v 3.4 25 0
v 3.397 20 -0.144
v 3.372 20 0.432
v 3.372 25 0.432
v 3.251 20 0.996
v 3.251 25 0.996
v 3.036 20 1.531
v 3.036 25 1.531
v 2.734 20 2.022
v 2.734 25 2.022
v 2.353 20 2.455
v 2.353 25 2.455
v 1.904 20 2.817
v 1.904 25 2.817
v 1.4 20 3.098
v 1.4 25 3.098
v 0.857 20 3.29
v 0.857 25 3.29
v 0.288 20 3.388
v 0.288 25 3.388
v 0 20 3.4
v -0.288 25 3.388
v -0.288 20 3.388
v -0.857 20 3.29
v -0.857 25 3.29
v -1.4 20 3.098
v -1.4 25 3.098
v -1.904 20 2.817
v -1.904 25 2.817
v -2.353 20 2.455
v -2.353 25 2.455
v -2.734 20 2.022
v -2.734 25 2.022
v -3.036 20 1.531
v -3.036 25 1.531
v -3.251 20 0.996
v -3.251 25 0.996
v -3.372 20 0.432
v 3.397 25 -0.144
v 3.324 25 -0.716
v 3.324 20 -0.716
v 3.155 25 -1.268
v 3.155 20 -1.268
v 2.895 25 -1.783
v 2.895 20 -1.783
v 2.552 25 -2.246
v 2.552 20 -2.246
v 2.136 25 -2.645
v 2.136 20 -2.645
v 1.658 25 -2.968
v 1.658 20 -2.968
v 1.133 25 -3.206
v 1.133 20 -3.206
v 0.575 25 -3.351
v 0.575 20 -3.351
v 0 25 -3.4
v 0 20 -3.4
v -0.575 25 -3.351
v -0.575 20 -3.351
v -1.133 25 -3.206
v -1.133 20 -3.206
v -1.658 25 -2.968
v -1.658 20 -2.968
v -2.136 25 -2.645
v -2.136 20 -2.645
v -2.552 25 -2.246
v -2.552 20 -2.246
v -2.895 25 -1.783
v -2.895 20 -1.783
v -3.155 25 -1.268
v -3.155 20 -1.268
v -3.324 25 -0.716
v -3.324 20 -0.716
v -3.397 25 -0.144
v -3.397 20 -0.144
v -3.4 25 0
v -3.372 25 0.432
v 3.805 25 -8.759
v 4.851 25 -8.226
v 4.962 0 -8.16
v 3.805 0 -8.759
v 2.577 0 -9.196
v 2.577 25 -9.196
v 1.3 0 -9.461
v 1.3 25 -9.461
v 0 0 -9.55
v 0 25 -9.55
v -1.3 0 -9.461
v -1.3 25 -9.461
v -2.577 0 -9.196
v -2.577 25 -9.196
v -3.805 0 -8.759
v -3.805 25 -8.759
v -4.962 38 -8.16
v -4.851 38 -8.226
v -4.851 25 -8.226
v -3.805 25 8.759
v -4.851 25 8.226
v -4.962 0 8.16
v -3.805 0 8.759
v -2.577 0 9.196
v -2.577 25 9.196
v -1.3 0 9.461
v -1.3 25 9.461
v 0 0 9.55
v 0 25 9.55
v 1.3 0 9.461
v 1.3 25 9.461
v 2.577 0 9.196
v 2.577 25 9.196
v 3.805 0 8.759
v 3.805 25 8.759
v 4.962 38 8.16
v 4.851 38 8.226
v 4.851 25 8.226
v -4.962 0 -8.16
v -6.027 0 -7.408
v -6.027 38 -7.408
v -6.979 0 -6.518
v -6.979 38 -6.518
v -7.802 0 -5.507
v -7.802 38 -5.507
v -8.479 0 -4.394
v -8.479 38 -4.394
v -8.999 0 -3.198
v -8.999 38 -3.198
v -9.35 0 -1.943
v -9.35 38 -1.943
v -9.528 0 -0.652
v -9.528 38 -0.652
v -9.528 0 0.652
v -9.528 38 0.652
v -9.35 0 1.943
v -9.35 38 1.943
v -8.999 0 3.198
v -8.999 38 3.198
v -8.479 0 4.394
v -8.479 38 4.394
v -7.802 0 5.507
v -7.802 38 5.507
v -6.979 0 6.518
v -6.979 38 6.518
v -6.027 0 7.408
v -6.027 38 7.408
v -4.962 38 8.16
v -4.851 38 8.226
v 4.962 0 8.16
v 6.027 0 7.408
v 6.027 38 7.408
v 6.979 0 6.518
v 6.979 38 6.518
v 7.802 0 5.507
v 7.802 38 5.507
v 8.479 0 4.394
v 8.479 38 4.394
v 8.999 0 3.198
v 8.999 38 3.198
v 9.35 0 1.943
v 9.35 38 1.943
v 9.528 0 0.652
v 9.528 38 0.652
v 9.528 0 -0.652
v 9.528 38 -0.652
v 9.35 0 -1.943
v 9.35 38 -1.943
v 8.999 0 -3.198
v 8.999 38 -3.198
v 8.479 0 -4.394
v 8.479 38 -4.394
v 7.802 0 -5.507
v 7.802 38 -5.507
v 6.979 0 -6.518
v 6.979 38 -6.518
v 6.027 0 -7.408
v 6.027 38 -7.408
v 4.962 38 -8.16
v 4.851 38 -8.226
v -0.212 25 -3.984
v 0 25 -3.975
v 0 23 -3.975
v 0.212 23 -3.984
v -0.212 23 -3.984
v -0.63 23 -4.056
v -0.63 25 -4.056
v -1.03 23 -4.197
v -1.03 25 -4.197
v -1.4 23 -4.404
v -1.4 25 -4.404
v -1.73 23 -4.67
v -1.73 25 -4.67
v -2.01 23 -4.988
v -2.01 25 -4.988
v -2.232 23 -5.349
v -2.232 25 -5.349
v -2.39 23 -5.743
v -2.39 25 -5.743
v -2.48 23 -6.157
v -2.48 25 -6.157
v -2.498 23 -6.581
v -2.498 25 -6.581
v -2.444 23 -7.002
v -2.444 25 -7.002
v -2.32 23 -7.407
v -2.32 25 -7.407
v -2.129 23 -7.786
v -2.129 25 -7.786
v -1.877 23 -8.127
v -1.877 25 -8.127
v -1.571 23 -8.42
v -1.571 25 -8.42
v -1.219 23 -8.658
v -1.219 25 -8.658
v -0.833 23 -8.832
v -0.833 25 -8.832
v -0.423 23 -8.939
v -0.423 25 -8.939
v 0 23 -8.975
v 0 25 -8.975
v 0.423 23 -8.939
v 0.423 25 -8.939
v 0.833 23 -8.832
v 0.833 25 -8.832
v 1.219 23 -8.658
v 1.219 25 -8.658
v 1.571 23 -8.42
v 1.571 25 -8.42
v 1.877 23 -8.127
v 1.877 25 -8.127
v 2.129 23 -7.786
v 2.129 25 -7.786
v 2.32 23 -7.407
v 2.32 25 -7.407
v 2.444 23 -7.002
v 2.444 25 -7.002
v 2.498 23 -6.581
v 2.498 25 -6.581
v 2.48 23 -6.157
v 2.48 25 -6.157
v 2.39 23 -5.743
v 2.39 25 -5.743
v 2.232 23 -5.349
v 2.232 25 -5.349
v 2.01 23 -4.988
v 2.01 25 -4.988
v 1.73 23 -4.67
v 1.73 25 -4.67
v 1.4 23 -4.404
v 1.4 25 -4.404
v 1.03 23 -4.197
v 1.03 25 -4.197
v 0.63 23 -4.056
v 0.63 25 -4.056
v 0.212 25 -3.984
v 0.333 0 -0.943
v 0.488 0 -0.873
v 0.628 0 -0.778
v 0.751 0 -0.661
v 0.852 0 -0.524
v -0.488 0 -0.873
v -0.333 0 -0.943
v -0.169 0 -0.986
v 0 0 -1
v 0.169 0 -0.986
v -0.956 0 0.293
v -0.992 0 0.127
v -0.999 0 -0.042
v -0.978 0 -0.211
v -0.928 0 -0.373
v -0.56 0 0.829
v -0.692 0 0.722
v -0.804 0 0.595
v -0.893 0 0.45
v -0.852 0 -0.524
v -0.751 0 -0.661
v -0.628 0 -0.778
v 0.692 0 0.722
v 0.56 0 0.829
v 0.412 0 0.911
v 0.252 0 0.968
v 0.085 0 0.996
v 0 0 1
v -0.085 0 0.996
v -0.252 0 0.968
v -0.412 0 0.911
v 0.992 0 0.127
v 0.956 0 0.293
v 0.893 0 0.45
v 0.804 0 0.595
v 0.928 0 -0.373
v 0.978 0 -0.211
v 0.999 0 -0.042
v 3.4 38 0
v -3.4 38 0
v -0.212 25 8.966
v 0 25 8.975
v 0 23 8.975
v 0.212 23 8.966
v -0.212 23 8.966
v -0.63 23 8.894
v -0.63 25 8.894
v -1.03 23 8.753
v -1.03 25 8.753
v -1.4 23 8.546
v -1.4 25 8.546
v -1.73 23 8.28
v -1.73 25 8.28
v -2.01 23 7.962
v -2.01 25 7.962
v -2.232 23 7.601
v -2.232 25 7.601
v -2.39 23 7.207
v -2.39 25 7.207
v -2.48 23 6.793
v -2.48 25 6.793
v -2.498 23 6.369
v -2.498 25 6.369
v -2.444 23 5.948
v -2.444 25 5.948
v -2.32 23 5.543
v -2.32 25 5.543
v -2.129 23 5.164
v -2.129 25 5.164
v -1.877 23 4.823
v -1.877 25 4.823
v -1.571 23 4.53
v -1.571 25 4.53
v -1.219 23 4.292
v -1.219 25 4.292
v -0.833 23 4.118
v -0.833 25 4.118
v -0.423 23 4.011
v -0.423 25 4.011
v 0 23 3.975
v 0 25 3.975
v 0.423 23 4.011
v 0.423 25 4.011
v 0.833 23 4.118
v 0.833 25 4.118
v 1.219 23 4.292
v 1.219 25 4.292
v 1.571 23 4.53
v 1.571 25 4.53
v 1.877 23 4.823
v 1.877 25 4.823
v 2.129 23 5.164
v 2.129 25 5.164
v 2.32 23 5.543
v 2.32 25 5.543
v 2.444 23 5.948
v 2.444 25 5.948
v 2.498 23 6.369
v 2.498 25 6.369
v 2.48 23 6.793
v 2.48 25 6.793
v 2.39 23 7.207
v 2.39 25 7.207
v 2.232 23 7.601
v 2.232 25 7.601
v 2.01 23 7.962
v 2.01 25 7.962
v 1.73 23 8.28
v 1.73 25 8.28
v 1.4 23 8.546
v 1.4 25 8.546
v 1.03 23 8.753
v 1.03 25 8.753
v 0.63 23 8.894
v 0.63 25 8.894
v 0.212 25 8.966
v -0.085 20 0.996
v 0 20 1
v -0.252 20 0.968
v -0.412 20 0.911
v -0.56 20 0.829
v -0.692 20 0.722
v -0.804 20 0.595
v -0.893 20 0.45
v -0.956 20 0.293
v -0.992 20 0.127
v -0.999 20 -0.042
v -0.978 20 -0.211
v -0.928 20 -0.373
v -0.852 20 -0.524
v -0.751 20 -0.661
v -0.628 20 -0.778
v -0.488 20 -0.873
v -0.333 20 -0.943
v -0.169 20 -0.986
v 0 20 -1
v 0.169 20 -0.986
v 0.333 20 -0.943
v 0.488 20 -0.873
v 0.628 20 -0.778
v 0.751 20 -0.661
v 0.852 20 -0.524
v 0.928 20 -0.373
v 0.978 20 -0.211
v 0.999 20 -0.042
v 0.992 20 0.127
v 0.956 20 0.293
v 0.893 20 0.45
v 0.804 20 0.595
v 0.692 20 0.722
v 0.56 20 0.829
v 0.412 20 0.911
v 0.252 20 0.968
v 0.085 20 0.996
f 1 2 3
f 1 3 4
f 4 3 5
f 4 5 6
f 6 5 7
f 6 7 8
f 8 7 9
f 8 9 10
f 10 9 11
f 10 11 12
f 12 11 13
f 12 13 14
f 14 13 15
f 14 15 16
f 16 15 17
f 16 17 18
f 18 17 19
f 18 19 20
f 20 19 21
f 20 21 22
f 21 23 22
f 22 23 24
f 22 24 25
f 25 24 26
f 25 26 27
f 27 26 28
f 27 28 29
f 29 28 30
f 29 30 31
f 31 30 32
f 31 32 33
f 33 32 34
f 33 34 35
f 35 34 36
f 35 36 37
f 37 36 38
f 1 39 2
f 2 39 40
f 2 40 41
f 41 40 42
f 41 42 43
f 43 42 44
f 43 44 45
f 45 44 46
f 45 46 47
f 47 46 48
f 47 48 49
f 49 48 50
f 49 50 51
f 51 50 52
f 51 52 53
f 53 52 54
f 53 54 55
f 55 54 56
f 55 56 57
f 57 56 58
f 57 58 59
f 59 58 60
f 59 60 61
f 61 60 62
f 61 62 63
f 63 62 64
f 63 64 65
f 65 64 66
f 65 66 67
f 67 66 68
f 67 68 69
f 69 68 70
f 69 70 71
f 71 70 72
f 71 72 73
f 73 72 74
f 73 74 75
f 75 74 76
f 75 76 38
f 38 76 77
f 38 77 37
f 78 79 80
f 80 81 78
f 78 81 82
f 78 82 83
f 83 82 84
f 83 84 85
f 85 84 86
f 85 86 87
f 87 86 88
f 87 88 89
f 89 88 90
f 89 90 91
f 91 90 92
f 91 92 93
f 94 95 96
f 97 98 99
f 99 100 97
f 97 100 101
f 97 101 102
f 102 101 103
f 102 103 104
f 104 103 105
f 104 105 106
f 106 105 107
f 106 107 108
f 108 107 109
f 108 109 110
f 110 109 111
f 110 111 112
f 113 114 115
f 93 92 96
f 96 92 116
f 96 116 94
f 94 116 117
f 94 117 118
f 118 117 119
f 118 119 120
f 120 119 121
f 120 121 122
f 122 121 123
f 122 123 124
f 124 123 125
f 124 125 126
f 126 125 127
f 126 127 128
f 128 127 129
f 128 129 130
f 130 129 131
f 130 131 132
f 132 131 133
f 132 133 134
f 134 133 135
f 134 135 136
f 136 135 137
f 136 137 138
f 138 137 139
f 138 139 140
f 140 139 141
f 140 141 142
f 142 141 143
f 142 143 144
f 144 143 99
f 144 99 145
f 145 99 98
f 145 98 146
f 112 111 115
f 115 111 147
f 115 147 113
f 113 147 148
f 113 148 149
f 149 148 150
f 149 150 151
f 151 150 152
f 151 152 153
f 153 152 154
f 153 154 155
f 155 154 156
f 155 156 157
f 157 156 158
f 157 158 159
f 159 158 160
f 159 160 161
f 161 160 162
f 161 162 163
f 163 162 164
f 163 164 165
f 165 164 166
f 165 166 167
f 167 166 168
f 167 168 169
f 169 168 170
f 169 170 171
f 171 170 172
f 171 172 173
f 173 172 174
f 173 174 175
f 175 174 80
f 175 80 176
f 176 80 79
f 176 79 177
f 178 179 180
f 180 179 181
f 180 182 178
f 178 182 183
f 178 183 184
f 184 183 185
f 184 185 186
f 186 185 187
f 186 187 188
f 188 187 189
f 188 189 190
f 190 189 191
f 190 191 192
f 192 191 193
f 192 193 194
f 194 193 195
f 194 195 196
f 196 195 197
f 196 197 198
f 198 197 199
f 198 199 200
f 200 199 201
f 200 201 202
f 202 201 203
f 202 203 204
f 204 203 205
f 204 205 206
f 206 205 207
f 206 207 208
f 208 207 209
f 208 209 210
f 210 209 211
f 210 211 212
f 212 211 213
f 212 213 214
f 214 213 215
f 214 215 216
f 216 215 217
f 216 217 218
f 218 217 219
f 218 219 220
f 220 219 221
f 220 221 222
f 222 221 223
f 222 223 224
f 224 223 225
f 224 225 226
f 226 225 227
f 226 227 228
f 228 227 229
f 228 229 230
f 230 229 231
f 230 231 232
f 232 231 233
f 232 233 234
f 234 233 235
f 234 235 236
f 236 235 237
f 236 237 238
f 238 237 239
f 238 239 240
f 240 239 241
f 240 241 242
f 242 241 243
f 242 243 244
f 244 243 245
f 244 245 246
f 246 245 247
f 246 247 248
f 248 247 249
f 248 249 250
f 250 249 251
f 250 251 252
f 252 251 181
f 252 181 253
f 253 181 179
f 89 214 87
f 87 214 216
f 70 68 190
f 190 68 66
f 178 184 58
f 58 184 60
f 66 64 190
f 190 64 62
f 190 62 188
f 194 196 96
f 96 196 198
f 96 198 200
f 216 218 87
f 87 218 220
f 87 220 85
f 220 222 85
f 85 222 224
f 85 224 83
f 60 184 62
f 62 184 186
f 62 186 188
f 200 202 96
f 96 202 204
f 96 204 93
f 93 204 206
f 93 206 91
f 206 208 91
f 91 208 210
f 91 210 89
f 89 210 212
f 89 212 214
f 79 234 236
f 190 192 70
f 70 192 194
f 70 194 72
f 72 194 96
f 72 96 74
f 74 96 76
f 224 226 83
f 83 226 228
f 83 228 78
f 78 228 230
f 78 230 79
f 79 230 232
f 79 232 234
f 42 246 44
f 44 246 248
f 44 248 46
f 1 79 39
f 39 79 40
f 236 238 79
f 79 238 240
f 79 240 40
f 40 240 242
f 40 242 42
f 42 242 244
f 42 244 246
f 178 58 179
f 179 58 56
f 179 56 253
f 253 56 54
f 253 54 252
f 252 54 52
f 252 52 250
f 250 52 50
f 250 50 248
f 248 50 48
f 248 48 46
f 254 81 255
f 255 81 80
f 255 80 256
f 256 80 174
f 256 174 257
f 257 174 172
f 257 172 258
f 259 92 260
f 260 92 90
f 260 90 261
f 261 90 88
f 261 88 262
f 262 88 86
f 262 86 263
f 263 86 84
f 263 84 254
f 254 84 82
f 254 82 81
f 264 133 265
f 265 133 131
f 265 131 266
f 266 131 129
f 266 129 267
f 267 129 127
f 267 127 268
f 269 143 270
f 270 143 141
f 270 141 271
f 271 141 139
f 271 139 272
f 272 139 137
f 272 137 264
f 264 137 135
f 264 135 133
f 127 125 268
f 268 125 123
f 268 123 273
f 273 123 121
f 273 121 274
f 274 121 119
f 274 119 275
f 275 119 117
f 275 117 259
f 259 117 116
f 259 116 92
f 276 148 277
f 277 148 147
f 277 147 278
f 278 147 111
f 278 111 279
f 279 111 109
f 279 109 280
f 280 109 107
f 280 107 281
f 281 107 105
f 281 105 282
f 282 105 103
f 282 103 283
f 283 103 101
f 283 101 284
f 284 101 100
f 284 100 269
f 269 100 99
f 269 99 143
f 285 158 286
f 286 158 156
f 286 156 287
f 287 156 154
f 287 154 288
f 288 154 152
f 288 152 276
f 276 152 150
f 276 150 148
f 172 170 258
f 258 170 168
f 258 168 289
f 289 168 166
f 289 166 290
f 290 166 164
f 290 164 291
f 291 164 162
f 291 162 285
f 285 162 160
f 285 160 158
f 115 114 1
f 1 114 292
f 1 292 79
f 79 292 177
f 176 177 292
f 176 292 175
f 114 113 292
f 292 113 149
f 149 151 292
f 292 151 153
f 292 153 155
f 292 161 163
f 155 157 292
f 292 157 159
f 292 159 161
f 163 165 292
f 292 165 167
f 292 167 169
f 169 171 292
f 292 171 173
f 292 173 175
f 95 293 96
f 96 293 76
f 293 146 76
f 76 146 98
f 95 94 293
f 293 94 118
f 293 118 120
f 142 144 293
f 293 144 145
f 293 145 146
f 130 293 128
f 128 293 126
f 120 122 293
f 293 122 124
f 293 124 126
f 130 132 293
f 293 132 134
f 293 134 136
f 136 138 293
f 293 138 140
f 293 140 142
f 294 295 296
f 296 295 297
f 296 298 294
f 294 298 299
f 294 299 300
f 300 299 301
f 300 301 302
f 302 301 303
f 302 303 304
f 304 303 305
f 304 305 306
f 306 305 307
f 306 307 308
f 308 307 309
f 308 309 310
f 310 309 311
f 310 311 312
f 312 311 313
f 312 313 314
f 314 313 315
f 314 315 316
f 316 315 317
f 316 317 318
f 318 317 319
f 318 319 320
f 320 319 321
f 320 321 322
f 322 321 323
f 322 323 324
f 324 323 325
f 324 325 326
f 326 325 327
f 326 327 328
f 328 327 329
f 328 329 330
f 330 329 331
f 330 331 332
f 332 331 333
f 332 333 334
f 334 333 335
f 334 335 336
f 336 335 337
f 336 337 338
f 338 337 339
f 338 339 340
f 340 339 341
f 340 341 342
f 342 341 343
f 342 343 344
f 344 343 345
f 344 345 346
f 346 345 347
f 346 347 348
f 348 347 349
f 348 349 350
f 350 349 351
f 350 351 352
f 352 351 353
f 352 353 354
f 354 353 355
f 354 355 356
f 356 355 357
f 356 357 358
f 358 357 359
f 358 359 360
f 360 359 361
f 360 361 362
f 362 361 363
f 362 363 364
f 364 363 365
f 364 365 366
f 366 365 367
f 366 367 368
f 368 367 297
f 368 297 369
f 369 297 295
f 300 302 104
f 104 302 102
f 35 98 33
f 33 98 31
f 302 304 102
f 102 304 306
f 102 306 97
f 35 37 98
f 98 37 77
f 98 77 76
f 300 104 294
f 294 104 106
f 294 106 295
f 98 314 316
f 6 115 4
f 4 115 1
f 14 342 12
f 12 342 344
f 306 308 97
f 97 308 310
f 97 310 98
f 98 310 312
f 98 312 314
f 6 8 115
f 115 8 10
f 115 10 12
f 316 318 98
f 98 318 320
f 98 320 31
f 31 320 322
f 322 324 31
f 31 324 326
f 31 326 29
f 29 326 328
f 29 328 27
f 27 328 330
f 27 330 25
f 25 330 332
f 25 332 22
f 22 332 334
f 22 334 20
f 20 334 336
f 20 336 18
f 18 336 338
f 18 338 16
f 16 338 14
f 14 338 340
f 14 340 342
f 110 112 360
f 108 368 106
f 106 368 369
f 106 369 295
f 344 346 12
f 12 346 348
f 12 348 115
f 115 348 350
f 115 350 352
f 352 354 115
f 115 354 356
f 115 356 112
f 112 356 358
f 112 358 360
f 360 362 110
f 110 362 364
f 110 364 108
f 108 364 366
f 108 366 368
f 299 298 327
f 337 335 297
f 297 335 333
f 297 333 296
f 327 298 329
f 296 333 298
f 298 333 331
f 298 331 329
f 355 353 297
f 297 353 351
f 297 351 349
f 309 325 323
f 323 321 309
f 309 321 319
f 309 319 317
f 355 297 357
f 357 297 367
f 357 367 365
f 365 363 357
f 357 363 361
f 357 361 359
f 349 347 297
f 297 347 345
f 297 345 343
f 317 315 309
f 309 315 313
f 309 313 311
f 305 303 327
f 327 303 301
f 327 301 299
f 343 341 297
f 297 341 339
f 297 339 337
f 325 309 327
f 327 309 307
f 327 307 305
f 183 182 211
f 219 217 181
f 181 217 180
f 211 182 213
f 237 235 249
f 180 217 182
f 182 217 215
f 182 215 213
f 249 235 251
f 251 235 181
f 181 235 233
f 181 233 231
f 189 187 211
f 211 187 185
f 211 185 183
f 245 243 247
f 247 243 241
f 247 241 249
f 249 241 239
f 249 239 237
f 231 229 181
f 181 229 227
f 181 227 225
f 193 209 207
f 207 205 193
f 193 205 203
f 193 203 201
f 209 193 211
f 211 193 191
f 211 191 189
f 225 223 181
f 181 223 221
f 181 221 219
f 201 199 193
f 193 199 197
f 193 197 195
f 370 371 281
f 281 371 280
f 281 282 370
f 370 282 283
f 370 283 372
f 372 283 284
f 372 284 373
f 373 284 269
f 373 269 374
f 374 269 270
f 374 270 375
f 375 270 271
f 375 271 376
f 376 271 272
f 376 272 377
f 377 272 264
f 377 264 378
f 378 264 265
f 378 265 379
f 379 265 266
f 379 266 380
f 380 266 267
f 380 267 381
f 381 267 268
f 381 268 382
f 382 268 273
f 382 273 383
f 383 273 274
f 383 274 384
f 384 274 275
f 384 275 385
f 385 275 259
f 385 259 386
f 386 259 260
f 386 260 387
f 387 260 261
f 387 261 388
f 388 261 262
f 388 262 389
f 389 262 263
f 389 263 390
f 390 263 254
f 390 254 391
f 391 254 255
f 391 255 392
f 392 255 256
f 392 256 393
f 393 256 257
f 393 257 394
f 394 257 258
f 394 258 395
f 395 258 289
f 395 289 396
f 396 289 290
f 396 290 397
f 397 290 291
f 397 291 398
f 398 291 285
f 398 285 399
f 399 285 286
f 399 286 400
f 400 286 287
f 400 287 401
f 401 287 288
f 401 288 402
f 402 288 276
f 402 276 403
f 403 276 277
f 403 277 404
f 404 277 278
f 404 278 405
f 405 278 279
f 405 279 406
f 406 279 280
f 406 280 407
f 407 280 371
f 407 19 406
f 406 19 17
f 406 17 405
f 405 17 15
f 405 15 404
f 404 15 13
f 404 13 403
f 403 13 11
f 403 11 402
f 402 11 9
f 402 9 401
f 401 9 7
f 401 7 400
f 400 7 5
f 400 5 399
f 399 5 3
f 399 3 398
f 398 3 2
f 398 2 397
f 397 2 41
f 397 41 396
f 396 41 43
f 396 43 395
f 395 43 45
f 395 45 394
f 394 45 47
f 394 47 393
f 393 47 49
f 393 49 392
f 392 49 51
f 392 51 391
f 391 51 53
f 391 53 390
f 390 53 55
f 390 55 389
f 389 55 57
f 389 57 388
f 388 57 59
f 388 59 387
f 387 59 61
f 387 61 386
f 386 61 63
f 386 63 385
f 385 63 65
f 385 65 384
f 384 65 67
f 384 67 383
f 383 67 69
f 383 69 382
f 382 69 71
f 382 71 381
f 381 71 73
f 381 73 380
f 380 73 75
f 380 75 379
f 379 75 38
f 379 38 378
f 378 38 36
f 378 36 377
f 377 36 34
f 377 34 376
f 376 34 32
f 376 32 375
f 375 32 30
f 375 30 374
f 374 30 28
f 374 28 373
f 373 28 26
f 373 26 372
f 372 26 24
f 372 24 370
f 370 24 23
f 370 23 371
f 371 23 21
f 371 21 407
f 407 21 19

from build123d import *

# Parameters (mm, degrees)
SKETCH1_R             = 2.5
BOSS_EXTRUDE1_DEPTH   = 25
BOSS_EXTRUDE1_2_DEPTH = 25
BOSS_EXTRUDE2_DEPTH   = 38
SKETCH1_4_R           = 2.5
BOSS_EXTRUDE3_DEPTH   = 23
SKETCH1_5_R           = 3.4
SKETCH1_5_R_2         = 1
BOSS_EXTRUDE4_DEPTH   = 20


with BuildPart() as part:
    # Sketch1 → Boss-Extrude1 (new body)
    with BuildSketch(Plane(origin=(0, 0, 0), x_dir=(1, 0, 0), z_dir=(0, 1, 0))):
        with BuildLine():
            ThreePointArc((-3.4, 0), (0, 3.4), (3.4, 0))
            Line((3.4, 0), (4.85054735, 8.226462813))
            ThreePointArc((4.85054735, 8.226462813), (0, 9.55), (-4.85054735, 8.226462813))
            Line((-4.85054735, 8.226462813), (-3.4, 0))
        make_face()
        with Locations(Location((0, 6.475, 0), (0, 0, 270))):
            Circle(SKETCH1_R, mode=Mode.SUBTRACT)
    extrude(amount=BOSS_EXTRUDE1_DEPTH)



with BuildPart() as body_2:
    # Sketch1 → Boss-Extrude1 2 (new body)
    with BuildSketch(Plane(origin=(0, 0, 0), x_dir=(1, 0, 0), z_dir=(0, 1, 0))):
        with BuildLine():
            Line((4.85054735, -8.226462813), (3.4, 0))
            ThreePointArc((3.4, 0), (0, -3.4), (-3.4, 0))
            Line((-3.4, 0), (-4.85054735, -8.226462813))
            ThreePointArc((-4.85054735, -8.226462813), (0, -9.55), (4.85054735, -8.226462813))
        make_face()
        with Locations(Location((0, -6.475, 0), (0, 0, 270))):
            Circle(SKETCH1_R, mode=Mode.SUBTRACT)
    extrude(amount=BOSS_EXTRUDE1_2_DEPTH)


with BuildPart() as part_1:
    add(part.part)

    add(body_2.part)  # Boss-Extrude2 merges body 2
    # Sketch1<3> → Boss-Extrude2 (add)
    with BuildSketch(Plane(origin=(0, 0, 0), x_dir=(1, 0, 0), z_dir=(0, 1, 0))):
        with BuildLine():
            Line((4.85054735, 8.226462813), (3.4, 0))
            Line((3.4, 0), (4.85054735, -8.226462813))
            ThreePointArc((4.85054735, -8.226462813), (8.292322569, -4.737075723), (9.55, 0))
            ThreePointArc((9.55, 0), (8.292322569, 4.737075723), (4.85054735, 8.226462813))
        make_face()
        with BuildLine():
            Line((-4.85054735, -8.226462813), (-3.4, 0))
            Line((-3.4, 0), (-4.85054735, 8.226462813))
            ThreePointArc((-4.85054735, 8.226462813), (-9.55, 0), (-4.85054735, -8.226462813))
        make_face()
    extrude(amount=BOSS_EXTRUDE2_DEPTH)

    # Sketch1<4> → Boss-Extrude3 (add)
    with BuildSketch(Plane(origin=(0, 0, 0), x_dir=(1, 0, 0), z_dir=(0, 1, 0))):
        with Locations(Location((0, -6.475, 0), (0, 0, 270))):
            Circle(SKETCH1_4_R)
        with Locations(Location((0, 6.475, 0), (0, 0, 270))):
            Circle(SKETCH1_4_R)
    extrude(amount=BOSS_EXTRUDE3_DEPTH)

    # Sketch1<5> → Boss-Extrude4 (add)
    with BuildSketch(Plane(origin=(0, 0, 0), x_dir=(1, 0, 0), z_dir=(0, 1, 0))):
        Circle(SKETCH1_5_R)
        with Locations(Location((0, 0, 0), (0, 0, 270))):
            Circle(SKETCH1_5_R_2, mode=Mode.SUBTRACT)
    extrude(amount=BOSS_EXTRUDE4_DEPTH)


solid = part_1.part
